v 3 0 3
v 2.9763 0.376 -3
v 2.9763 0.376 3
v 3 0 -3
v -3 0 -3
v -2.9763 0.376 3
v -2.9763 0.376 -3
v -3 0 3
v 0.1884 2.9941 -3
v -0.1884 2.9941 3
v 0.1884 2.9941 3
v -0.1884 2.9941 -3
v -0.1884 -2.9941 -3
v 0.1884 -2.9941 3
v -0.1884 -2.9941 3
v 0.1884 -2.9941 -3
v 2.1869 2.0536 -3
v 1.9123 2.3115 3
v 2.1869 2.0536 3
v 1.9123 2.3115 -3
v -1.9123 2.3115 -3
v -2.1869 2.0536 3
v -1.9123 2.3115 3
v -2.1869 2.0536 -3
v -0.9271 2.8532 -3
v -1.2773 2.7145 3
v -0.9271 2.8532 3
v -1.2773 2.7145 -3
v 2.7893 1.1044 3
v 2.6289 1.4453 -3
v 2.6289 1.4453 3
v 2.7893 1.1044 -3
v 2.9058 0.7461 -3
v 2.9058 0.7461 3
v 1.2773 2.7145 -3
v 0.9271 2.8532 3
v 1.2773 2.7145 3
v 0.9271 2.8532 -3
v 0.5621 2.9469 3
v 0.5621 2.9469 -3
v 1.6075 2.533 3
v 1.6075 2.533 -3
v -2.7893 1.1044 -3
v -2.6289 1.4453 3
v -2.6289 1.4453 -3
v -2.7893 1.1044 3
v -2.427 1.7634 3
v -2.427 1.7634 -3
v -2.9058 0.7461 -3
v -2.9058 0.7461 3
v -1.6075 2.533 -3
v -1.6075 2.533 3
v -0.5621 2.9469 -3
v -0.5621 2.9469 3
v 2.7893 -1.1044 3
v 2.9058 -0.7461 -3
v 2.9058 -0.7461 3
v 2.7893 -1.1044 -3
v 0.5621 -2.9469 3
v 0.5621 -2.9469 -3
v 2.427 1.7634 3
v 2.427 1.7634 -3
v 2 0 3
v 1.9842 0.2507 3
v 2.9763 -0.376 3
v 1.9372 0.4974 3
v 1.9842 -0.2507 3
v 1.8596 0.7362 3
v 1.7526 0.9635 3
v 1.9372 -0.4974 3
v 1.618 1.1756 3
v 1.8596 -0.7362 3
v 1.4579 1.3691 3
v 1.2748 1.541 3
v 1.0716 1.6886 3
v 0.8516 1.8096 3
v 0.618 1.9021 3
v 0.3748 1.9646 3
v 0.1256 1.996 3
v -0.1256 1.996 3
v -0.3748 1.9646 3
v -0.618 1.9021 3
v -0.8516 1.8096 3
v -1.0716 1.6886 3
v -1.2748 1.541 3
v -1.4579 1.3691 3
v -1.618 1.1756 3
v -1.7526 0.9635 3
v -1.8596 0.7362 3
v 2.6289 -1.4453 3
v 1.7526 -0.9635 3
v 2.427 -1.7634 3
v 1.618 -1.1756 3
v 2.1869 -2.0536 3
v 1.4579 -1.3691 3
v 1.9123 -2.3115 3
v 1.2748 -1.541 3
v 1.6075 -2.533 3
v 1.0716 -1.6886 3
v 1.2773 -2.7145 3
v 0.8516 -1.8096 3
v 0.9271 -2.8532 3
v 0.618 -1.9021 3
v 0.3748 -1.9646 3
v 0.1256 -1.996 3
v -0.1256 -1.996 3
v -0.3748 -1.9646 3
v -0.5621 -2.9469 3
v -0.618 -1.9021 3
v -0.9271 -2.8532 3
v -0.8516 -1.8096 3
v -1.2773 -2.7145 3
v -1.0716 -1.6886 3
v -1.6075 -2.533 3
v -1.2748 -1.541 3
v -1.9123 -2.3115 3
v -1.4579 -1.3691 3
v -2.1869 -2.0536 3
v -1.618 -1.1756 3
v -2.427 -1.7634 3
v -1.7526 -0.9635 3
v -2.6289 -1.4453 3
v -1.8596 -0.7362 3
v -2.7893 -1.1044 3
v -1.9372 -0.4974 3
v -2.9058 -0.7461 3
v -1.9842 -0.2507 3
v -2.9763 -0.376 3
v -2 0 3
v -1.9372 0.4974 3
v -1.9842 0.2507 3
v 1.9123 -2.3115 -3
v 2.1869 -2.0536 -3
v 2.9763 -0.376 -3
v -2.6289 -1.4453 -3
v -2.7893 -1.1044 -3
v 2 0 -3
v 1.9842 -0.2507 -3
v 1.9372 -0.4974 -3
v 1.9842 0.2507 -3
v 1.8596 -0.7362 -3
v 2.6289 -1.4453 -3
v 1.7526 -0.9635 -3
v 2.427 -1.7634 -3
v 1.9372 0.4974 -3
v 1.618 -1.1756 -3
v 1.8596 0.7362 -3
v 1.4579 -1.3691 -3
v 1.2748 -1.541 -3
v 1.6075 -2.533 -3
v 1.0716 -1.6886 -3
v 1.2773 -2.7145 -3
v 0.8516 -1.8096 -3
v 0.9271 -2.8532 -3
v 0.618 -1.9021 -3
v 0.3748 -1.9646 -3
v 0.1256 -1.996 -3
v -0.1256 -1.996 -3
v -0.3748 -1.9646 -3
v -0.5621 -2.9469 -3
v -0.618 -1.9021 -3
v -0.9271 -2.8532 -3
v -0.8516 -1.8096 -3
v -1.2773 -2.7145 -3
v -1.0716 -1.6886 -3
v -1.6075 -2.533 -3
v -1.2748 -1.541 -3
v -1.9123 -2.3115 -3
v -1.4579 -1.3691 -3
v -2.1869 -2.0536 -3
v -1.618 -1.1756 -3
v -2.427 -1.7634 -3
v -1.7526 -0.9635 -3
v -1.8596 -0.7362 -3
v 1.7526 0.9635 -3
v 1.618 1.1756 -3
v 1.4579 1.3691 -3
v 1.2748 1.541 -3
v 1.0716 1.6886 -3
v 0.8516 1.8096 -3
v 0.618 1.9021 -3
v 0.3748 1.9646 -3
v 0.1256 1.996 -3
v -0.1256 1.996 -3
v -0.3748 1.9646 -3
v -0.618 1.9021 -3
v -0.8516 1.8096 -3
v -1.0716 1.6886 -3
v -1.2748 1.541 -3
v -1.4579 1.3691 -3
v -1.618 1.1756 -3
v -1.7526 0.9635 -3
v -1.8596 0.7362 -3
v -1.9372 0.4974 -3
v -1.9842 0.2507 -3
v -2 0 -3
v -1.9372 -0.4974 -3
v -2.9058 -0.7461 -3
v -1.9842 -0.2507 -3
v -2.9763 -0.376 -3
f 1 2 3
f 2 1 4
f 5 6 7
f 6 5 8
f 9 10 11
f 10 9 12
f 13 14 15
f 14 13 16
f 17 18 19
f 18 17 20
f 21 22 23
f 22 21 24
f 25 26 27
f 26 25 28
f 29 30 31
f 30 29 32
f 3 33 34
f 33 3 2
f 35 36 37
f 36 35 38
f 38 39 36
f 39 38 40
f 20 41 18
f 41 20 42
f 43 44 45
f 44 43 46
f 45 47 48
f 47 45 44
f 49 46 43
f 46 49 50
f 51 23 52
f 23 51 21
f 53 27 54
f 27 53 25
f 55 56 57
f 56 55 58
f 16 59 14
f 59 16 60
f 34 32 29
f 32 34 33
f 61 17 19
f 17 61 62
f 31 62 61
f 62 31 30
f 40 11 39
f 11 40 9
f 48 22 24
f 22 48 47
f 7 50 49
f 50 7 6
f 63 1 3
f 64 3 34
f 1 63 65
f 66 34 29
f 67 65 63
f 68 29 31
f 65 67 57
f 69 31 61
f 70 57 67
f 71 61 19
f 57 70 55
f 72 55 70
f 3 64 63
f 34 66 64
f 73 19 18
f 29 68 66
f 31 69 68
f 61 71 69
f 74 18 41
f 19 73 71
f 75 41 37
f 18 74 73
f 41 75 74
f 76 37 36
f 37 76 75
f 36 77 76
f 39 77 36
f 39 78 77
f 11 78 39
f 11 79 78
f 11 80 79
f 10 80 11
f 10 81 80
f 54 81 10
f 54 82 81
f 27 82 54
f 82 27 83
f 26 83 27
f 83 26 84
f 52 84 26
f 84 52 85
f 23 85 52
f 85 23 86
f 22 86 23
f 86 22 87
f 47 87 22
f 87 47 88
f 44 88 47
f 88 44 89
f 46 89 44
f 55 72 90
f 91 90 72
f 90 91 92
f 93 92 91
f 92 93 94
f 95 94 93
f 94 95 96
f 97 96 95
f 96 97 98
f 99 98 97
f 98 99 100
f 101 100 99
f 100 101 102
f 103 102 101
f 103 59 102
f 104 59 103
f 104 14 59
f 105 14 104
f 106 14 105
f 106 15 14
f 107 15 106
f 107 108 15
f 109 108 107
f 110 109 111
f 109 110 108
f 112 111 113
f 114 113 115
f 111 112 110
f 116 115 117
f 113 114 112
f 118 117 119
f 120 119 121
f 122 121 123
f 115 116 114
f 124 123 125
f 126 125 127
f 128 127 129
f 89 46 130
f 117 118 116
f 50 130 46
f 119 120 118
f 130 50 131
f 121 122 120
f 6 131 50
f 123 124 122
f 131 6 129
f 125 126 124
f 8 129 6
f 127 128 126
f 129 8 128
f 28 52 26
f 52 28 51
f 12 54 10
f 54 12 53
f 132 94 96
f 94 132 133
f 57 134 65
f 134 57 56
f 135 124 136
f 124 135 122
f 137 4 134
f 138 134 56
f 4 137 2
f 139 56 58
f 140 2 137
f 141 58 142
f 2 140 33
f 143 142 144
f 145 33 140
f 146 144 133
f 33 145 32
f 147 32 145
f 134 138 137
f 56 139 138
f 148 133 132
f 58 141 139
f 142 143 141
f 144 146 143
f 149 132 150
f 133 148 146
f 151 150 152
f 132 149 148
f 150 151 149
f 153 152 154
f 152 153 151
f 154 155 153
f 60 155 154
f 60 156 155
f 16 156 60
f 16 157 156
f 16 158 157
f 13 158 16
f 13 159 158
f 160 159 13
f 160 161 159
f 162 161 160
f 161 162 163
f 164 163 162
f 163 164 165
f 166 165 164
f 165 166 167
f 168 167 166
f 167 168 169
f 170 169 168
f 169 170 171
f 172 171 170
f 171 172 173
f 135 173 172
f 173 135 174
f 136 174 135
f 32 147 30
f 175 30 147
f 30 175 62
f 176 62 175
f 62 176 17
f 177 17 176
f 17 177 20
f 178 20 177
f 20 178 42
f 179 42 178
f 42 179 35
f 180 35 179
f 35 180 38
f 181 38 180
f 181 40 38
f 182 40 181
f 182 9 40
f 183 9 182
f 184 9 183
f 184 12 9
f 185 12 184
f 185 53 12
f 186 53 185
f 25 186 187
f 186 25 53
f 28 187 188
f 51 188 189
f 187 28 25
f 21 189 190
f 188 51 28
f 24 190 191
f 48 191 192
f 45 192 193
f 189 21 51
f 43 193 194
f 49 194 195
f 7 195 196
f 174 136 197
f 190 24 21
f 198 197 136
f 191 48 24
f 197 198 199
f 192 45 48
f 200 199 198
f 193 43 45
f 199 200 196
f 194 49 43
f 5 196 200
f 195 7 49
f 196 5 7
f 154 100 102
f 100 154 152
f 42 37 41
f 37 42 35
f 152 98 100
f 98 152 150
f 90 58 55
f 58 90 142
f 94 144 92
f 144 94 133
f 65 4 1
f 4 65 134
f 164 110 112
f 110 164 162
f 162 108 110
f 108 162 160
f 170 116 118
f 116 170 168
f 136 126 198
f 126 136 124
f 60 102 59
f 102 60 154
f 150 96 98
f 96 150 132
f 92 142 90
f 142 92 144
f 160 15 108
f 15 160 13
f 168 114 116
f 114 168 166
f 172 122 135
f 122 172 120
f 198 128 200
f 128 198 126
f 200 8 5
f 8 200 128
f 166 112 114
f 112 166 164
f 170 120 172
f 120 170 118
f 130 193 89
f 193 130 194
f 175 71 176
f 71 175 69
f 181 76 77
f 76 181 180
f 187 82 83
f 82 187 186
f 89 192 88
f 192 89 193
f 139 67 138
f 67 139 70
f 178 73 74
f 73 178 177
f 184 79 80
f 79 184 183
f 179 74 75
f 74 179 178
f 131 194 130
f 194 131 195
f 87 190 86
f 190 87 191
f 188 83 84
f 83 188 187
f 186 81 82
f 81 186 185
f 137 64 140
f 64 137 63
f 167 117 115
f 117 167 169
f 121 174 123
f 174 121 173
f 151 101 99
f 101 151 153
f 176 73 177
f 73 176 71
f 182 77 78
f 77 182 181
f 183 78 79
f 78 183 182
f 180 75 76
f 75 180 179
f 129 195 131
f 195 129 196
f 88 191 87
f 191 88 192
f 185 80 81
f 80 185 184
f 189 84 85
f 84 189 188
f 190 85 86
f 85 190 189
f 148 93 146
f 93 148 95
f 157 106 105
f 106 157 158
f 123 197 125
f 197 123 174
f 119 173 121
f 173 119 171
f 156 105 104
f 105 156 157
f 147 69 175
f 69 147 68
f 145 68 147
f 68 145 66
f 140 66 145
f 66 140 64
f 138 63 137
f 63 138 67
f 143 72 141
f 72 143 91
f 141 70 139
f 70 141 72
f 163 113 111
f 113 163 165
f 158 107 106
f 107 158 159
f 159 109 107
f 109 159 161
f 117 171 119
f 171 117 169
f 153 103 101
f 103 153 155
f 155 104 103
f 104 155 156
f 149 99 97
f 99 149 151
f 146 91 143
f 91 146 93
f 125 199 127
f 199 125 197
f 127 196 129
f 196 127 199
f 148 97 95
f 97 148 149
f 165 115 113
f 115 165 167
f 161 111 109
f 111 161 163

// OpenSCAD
$fn = 50;


difference() {
	union() {
		translate(v = [0, 0, -3.0000000000]) {
			cylinder(h = 6, r = 3.0000000000);
		}
	}
	union() {
		translate(v = [0, 0, -100.0000000000]) {
			cylinder(h = 200, r = 2);
		}
	}
}
